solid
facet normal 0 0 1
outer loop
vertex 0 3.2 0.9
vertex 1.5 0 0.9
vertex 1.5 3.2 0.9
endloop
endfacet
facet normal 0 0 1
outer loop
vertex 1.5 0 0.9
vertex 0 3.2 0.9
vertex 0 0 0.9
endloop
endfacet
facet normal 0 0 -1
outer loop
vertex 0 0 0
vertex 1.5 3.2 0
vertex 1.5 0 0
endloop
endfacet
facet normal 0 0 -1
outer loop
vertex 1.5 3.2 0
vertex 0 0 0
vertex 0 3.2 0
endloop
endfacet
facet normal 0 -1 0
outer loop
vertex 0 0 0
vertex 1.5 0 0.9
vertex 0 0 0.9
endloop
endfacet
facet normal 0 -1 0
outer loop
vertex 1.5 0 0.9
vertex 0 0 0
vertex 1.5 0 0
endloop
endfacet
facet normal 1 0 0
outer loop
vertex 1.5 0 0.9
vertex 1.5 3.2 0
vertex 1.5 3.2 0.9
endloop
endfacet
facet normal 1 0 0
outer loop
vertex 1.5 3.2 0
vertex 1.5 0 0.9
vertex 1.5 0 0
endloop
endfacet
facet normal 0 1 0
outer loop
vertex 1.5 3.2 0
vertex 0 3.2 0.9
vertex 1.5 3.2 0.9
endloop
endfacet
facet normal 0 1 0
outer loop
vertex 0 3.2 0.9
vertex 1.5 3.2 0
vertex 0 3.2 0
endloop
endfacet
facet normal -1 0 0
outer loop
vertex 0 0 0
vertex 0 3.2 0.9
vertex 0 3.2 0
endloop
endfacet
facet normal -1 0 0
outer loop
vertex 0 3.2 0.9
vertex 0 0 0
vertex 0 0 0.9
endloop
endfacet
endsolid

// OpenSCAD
/* Warning, this is a very basic generator with a lot of approximation 
input data : [CDFP, HEC, 1.5x3.2x0.9mm, 2, , A, C04-25316A]
generated by com.zoubworld.electronics.cad.model3d.Basic
Date : Sun Feb 15 10:50:49 CET 2026
*/

//body
color("black")
translate([0,0,0])
cube([1.5,3.2,0.9], center=false);
